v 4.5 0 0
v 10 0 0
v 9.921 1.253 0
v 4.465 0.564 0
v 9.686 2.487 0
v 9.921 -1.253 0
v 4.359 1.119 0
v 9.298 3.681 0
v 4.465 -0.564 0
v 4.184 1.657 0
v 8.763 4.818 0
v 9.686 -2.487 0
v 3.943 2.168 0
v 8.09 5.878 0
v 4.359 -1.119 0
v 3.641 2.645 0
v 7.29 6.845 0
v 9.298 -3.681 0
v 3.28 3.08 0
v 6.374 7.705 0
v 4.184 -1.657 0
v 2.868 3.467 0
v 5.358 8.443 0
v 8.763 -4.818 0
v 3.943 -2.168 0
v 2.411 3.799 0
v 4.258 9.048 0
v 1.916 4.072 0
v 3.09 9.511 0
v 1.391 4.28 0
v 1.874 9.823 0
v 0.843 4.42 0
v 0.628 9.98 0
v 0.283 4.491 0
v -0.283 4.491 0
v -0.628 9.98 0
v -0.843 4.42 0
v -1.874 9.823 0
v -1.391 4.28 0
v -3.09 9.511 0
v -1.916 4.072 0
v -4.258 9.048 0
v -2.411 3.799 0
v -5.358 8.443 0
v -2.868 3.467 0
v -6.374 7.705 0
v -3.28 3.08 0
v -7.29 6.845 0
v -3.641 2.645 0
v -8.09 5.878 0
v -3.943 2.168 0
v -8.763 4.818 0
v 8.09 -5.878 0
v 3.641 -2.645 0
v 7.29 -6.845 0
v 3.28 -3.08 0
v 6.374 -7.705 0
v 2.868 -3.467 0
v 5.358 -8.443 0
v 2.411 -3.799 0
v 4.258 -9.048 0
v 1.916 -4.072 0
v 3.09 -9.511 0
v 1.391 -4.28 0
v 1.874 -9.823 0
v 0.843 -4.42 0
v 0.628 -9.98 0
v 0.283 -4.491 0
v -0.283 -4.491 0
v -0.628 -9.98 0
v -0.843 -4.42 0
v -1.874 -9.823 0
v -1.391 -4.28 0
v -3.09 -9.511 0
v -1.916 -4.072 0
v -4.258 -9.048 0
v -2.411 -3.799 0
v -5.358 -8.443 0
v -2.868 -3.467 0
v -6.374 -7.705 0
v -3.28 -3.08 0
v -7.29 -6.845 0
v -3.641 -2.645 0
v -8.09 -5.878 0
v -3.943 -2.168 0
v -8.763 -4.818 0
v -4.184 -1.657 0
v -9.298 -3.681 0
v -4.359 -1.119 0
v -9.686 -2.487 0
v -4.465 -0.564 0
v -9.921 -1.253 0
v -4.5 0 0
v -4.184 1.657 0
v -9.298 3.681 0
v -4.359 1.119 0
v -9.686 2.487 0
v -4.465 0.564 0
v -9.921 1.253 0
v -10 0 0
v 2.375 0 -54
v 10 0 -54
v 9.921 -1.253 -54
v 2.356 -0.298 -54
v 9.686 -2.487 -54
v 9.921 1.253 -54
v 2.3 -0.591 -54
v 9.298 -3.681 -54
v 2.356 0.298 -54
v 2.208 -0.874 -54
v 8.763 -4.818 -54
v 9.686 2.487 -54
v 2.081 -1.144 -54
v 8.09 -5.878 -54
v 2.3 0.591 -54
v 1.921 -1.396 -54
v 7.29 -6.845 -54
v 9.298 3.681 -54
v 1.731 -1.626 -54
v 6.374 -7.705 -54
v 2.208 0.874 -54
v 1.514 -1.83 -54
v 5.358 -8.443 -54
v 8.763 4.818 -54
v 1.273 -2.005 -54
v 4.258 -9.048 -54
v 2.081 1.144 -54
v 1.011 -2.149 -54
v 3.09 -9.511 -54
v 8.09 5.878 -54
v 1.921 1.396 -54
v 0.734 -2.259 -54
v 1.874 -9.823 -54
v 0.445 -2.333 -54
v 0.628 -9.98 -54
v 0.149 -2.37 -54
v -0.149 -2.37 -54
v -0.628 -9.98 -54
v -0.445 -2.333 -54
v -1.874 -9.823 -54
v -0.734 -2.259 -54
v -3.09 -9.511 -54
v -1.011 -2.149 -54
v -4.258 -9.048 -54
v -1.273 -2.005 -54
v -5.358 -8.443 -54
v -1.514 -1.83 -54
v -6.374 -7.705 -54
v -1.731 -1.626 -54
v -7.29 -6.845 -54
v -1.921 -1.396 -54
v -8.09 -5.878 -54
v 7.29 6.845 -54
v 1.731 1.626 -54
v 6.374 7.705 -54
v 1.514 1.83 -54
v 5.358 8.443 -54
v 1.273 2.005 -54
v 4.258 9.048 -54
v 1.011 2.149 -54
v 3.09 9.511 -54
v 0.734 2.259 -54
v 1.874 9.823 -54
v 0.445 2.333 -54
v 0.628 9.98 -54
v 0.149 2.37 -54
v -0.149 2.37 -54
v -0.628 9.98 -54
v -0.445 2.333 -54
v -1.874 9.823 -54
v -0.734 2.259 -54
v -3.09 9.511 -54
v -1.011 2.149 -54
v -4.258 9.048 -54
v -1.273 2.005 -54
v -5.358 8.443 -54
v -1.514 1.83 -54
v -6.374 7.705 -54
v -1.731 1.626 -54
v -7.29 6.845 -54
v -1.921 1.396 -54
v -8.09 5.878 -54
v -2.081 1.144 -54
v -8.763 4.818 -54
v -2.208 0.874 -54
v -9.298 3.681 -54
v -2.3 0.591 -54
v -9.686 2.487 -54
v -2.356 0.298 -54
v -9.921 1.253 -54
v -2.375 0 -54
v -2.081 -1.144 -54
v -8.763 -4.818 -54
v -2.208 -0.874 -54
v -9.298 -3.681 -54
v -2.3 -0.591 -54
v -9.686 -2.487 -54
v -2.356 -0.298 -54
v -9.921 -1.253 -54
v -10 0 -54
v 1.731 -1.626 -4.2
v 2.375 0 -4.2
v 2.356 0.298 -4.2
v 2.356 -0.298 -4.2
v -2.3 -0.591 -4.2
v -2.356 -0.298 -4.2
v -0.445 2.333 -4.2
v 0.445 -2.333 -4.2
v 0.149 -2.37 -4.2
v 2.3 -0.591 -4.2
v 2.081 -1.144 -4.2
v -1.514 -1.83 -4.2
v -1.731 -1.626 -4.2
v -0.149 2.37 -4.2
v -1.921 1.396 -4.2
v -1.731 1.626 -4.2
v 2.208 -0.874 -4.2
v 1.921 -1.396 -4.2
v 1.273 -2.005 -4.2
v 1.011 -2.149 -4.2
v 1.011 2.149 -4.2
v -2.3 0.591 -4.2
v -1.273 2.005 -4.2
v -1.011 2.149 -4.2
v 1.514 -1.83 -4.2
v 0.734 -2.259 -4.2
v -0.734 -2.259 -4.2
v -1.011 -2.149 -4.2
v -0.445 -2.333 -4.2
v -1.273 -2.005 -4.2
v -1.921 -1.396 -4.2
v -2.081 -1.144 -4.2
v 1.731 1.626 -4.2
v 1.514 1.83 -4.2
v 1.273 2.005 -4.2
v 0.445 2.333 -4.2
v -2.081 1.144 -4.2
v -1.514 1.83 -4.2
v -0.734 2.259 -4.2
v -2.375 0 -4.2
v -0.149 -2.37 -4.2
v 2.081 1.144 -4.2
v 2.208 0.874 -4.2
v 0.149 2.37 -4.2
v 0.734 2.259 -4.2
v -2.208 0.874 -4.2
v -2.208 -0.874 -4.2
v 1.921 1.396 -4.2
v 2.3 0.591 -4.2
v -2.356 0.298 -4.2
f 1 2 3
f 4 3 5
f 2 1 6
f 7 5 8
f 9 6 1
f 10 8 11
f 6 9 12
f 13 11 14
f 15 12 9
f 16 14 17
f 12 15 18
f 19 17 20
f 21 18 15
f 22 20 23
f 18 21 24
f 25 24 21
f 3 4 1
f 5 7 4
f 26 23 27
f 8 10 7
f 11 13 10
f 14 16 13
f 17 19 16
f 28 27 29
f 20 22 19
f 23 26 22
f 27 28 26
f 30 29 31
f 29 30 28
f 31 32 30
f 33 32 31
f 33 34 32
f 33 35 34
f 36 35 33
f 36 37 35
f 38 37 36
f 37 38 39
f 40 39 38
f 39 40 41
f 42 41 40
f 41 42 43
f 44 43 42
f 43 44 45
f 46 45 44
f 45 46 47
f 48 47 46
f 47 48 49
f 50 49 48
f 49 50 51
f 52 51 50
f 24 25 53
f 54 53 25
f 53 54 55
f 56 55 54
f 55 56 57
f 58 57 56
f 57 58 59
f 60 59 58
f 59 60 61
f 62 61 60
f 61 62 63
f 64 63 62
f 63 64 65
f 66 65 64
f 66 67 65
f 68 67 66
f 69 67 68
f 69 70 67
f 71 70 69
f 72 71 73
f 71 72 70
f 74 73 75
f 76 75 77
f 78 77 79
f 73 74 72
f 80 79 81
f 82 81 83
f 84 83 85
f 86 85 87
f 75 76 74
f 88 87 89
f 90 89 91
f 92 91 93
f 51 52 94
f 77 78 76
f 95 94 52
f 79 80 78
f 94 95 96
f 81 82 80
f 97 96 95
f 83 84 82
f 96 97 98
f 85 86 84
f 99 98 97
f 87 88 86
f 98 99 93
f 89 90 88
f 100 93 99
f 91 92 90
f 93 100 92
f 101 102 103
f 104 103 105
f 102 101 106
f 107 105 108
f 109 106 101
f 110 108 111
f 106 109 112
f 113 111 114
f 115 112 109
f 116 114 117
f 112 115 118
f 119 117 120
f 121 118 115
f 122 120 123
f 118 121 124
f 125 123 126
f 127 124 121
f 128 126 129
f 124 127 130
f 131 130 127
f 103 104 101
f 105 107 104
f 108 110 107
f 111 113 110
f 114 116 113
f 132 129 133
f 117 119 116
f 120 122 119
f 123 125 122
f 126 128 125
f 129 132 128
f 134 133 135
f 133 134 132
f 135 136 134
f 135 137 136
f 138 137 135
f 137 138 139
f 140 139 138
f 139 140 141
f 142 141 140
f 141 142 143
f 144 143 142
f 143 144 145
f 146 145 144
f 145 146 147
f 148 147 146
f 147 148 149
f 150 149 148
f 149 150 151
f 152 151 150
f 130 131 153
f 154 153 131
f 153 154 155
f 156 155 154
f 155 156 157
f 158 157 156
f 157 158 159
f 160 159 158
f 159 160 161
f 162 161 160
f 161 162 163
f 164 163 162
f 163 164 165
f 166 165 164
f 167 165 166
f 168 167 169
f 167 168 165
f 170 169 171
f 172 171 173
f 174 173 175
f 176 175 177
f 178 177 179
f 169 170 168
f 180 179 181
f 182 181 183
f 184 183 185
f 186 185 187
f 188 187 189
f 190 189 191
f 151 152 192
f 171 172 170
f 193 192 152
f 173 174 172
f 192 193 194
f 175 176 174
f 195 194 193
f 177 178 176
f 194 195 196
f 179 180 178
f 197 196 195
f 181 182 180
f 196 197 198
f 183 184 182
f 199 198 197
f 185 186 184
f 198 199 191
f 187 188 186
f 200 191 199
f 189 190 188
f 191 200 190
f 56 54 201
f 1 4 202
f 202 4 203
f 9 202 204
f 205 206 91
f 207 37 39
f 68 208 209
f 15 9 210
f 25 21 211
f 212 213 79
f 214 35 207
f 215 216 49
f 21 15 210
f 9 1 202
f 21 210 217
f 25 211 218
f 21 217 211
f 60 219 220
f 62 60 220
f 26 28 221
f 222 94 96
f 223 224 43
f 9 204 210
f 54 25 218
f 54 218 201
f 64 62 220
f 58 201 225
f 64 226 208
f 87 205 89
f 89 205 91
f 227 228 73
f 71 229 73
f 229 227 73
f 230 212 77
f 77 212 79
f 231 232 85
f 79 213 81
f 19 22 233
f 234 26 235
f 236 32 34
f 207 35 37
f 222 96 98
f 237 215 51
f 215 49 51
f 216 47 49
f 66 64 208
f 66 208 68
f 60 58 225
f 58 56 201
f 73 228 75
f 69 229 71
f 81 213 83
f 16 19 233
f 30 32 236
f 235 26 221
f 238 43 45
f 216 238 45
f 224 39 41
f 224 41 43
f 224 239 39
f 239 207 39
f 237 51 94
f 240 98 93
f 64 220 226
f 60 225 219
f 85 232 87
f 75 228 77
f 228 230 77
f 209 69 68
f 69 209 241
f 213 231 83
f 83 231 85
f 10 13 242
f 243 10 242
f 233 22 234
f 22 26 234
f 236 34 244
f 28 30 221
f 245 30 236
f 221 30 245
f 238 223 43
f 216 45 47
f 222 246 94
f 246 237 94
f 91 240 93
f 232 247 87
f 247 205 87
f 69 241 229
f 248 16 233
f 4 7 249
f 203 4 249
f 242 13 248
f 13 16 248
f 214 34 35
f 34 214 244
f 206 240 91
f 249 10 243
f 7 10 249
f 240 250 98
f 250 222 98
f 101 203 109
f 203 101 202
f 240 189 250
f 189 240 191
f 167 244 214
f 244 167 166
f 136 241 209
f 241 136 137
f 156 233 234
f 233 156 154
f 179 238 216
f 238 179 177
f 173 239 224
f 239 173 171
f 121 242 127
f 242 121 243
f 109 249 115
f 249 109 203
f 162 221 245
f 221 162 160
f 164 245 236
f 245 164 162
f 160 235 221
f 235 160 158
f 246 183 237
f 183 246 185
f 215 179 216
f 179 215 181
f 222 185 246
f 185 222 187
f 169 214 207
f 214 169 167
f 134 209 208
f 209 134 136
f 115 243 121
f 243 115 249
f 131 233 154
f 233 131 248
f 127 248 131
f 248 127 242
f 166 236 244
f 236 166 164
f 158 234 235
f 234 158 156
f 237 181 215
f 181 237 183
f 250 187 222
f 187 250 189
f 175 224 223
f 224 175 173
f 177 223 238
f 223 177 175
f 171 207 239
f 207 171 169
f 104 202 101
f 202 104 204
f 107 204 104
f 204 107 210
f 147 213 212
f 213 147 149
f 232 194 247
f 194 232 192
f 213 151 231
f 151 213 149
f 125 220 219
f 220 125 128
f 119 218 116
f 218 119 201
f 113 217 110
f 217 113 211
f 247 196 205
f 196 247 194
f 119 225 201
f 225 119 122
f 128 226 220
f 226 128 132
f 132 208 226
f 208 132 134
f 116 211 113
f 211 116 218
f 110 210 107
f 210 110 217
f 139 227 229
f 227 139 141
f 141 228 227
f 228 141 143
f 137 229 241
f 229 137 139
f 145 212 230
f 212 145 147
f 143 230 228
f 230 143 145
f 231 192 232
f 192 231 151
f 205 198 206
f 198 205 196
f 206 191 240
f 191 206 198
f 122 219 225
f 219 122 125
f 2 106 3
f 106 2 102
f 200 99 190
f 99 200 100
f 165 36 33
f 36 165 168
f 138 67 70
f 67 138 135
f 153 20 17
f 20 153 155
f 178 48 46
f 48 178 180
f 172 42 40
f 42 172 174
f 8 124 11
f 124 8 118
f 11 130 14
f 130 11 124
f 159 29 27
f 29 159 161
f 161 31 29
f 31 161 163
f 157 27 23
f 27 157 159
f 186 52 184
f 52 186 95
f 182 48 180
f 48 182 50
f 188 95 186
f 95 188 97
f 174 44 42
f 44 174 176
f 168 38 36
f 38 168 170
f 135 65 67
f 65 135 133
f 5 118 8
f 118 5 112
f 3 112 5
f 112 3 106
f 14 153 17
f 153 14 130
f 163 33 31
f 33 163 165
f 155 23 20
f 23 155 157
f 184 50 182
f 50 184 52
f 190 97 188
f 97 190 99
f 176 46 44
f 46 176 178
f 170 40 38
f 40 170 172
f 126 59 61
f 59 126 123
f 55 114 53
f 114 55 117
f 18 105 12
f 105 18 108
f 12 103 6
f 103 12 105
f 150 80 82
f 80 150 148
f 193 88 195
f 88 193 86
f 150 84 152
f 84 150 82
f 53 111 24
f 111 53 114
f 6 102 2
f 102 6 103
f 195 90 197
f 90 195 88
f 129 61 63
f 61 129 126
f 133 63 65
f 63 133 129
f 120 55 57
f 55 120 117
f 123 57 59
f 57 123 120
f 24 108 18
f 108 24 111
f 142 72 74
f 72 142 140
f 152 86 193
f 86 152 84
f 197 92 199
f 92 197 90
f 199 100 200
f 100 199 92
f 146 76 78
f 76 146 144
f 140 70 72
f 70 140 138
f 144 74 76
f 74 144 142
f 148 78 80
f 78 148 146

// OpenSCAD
$fn = 50;


difference() {
	union() {
		translate(v = [0, 0, -54.0000000000]) {
			cylinder(h = 54, r = 10.0000000000);
		}
		cylinder(h = 0, r = 19.0000000000);
	}
	union() {
		translate(v = [0, 0, 0]) {
			rotate(a = [0, 0, 0]) {
				difference() {
					union() {
						#translate(v = [0, 0, -54.0000000000]) {
							cylinder(h = 54, r = 2.2500000000);
						}
						#translate(v = [0, 0, -4.2000000000]) {
							cylinder(h = 4.2000000000, r1 = 2.3750000000, r2 = 4.5000000000);
						}
						#translate(v = [0, 0, -54.0000000000]) {
							cylinder(h = 54, r = 2.3750000000);
						}
						#translate(v = [0, 0, -54.0000000000]) {
							cylinder(h = 54, r = 2.2500000000);
						}
					}
					union();
				}
			}
		}
	}
}
